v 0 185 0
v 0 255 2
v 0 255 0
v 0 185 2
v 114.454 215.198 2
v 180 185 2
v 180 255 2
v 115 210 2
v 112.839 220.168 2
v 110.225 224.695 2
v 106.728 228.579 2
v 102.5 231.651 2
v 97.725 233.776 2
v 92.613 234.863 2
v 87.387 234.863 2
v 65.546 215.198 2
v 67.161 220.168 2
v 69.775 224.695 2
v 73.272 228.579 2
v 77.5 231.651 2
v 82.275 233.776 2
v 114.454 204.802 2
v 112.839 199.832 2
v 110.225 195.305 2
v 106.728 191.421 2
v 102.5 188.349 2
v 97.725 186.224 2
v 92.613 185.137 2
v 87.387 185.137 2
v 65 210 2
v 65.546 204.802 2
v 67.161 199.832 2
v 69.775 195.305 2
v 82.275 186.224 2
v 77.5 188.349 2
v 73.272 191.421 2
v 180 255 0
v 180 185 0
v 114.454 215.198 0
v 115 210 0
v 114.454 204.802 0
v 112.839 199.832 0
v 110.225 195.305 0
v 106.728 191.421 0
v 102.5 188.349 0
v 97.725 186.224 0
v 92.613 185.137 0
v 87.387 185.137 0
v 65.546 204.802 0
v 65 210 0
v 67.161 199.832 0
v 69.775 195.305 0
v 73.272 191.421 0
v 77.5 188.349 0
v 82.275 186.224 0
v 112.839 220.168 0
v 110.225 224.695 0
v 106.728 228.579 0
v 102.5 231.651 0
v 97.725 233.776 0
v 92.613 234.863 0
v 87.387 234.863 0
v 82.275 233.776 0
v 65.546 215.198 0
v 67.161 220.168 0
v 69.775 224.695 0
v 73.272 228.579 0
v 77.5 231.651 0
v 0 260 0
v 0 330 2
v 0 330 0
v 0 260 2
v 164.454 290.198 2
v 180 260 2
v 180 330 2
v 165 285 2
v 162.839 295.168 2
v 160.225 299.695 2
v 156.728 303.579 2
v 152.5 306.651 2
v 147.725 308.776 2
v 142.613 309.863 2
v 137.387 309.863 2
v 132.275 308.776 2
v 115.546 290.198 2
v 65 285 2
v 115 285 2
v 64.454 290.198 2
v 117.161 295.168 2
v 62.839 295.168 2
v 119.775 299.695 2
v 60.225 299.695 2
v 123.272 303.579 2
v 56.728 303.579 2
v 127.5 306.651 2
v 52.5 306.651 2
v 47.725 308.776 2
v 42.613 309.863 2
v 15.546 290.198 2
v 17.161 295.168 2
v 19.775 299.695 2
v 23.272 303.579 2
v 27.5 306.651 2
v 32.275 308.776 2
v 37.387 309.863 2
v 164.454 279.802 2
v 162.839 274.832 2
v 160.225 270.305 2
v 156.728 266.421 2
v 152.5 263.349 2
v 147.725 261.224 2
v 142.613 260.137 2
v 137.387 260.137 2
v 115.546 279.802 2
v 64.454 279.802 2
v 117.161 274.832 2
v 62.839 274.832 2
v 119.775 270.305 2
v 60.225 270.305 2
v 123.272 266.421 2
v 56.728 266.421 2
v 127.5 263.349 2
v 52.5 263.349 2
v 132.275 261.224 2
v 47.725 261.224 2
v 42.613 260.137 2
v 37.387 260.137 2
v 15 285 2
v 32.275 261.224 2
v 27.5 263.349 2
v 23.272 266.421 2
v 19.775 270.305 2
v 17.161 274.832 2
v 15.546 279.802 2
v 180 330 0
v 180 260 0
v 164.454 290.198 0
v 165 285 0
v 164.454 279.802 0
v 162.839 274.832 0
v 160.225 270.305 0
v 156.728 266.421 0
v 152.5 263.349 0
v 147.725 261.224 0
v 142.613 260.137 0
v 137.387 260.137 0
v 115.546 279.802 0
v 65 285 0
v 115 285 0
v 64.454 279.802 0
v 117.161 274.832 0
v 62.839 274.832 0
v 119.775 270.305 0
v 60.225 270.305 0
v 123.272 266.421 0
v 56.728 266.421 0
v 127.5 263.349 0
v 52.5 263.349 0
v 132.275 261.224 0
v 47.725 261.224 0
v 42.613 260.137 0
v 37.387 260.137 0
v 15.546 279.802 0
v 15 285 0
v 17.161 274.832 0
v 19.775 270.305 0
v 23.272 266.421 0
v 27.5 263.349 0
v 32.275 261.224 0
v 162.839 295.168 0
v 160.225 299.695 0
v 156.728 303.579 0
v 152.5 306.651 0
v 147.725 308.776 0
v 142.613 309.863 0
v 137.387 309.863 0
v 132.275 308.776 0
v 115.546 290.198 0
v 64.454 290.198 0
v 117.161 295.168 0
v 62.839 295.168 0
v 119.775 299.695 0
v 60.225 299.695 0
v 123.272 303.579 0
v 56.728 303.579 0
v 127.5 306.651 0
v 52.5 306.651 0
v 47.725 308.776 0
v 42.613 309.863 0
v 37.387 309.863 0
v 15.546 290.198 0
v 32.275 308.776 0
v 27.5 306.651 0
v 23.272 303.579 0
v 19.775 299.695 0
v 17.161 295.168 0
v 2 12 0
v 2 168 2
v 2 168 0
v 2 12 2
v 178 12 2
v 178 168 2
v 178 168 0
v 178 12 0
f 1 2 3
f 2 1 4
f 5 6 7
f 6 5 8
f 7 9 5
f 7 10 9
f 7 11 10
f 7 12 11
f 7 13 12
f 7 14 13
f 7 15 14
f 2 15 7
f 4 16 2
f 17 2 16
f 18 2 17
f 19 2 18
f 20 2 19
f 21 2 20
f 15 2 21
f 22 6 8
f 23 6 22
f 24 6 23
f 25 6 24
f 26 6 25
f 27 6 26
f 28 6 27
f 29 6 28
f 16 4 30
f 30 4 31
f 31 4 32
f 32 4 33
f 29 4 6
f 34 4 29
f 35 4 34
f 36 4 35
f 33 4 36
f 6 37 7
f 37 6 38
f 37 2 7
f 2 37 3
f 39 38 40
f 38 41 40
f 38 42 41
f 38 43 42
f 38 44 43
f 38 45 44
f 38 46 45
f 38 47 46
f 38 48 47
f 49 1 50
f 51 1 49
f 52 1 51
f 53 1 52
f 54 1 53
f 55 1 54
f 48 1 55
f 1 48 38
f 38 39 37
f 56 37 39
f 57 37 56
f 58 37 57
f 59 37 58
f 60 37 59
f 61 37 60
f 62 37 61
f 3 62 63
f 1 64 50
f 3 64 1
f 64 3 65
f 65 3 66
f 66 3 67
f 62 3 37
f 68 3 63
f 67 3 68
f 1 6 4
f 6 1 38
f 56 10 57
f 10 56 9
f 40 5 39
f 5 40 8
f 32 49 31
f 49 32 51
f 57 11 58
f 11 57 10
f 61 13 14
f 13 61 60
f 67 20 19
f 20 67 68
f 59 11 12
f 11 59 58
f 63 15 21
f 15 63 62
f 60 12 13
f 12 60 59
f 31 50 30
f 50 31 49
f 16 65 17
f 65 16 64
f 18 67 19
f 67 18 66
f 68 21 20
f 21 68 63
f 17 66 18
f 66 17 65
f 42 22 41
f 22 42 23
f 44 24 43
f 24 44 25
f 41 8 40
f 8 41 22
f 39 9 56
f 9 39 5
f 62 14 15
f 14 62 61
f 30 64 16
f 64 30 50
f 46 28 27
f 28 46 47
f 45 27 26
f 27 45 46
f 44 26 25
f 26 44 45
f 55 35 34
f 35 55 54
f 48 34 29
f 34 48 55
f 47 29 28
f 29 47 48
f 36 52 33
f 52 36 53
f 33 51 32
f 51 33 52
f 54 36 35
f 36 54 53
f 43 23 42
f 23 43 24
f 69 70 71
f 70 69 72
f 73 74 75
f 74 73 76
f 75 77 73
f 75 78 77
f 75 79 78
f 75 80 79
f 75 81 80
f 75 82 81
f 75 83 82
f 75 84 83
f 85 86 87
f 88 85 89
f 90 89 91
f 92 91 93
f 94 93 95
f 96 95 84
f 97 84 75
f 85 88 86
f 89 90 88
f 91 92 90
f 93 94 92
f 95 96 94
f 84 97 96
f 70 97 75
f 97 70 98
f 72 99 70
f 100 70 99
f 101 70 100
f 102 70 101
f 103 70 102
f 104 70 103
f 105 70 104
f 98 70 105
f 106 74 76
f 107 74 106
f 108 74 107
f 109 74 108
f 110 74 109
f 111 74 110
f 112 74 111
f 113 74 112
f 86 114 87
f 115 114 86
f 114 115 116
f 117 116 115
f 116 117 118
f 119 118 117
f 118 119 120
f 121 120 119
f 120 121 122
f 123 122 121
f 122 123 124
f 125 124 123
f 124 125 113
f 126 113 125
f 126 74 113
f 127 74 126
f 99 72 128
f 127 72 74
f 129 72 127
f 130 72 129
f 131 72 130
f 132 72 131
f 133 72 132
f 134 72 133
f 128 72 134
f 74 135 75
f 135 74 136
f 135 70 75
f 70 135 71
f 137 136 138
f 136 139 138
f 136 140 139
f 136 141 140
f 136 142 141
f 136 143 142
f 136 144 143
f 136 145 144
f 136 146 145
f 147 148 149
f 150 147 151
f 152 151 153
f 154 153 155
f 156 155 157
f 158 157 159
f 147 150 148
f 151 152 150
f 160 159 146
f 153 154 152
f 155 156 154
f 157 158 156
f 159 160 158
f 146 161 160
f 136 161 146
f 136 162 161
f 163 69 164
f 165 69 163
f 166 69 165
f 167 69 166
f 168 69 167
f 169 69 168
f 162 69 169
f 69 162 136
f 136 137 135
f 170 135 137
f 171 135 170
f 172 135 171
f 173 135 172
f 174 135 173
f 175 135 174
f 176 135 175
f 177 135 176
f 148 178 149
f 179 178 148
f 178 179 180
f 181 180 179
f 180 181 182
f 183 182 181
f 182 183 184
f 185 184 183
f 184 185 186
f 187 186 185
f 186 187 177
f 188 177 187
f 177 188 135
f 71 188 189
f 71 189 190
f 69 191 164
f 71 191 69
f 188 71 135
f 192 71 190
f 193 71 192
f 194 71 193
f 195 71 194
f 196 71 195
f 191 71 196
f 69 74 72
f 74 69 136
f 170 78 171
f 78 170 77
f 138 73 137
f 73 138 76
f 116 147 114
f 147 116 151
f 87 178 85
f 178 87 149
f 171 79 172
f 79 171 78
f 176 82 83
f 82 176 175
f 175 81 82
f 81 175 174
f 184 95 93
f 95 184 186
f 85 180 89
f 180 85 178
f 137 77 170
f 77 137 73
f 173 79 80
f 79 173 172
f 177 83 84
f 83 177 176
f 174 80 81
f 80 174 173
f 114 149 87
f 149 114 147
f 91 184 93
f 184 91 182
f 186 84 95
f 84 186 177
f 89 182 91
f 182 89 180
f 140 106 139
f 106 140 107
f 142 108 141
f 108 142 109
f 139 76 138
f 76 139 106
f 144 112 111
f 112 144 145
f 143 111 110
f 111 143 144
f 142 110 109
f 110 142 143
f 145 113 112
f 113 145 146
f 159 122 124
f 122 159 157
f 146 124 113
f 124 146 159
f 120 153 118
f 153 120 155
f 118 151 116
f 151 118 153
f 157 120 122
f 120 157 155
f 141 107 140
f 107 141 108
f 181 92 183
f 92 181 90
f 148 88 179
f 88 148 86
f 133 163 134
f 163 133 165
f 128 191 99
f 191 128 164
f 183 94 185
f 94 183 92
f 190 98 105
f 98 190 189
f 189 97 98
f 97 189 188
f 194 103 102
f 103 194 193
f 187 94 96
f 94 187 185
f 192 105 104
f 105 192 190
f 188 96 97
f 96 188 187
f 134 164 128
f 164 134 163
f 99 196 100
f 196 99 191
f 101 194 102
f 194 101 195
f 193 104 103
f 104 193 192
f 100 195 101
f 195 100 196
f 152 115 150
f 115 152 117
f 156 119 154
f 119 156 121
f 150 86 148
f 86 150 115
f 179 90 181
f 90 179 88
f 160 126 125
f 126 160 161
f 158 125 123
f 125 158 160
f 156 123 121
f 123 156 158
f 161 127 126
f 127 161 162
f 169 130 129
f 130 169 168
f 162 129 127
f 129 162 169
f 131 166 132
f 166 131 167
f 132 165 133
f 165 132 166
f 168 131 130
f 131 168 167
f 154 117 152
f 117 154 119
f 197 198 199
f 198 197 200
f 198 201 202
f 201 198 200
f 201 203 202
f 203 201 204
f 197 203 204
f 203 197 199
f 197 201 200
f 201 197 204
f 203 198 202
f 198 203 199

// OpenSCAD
//alle Maße in mm
Pd = 2; //plattendicke ist 2mm

//Maße Grundplatte
Lg = 180; //Länge Grundplatte
Bg = Lg;  //Breite Grundplatte

//zeichne Grundplatte
//cube(size = [Lg,Bg,Pd], center = false);

//Seitenwand 1-Loch
Hs1 = 70;  //Höhe
translate ([0,Bg+5,0]){
    difference() {
        cube (size = [Lg,Hs1,Pd], center = false);
        translate ([90,25,0]){cylinder (h = Pd+6, d = 50, center =   true);}
        }
    }
    
//Seitenwand 2-Löcher
translate ([0,Bg+Hs1+10,0]){
    difference() {
        cube (size = [Lg,Hs1,Pd], center = false);
        translate ([140,25,0]){cylinder (h = Pd+6, d = 50, center =   true);}
        translate ([40,25,0]) {cylinder (h = Pd+6, d = 50, center =   true);}
        }
    }
 
 //Platteneinlage

Be=Bg-2*(Pd+10);
Le = Lg-2*Pd;
color(c=[100/255,100/255,100/255])translate([Pd,Pd+10,0]){cube(size = [Le,Be,Pd], center = false);}
